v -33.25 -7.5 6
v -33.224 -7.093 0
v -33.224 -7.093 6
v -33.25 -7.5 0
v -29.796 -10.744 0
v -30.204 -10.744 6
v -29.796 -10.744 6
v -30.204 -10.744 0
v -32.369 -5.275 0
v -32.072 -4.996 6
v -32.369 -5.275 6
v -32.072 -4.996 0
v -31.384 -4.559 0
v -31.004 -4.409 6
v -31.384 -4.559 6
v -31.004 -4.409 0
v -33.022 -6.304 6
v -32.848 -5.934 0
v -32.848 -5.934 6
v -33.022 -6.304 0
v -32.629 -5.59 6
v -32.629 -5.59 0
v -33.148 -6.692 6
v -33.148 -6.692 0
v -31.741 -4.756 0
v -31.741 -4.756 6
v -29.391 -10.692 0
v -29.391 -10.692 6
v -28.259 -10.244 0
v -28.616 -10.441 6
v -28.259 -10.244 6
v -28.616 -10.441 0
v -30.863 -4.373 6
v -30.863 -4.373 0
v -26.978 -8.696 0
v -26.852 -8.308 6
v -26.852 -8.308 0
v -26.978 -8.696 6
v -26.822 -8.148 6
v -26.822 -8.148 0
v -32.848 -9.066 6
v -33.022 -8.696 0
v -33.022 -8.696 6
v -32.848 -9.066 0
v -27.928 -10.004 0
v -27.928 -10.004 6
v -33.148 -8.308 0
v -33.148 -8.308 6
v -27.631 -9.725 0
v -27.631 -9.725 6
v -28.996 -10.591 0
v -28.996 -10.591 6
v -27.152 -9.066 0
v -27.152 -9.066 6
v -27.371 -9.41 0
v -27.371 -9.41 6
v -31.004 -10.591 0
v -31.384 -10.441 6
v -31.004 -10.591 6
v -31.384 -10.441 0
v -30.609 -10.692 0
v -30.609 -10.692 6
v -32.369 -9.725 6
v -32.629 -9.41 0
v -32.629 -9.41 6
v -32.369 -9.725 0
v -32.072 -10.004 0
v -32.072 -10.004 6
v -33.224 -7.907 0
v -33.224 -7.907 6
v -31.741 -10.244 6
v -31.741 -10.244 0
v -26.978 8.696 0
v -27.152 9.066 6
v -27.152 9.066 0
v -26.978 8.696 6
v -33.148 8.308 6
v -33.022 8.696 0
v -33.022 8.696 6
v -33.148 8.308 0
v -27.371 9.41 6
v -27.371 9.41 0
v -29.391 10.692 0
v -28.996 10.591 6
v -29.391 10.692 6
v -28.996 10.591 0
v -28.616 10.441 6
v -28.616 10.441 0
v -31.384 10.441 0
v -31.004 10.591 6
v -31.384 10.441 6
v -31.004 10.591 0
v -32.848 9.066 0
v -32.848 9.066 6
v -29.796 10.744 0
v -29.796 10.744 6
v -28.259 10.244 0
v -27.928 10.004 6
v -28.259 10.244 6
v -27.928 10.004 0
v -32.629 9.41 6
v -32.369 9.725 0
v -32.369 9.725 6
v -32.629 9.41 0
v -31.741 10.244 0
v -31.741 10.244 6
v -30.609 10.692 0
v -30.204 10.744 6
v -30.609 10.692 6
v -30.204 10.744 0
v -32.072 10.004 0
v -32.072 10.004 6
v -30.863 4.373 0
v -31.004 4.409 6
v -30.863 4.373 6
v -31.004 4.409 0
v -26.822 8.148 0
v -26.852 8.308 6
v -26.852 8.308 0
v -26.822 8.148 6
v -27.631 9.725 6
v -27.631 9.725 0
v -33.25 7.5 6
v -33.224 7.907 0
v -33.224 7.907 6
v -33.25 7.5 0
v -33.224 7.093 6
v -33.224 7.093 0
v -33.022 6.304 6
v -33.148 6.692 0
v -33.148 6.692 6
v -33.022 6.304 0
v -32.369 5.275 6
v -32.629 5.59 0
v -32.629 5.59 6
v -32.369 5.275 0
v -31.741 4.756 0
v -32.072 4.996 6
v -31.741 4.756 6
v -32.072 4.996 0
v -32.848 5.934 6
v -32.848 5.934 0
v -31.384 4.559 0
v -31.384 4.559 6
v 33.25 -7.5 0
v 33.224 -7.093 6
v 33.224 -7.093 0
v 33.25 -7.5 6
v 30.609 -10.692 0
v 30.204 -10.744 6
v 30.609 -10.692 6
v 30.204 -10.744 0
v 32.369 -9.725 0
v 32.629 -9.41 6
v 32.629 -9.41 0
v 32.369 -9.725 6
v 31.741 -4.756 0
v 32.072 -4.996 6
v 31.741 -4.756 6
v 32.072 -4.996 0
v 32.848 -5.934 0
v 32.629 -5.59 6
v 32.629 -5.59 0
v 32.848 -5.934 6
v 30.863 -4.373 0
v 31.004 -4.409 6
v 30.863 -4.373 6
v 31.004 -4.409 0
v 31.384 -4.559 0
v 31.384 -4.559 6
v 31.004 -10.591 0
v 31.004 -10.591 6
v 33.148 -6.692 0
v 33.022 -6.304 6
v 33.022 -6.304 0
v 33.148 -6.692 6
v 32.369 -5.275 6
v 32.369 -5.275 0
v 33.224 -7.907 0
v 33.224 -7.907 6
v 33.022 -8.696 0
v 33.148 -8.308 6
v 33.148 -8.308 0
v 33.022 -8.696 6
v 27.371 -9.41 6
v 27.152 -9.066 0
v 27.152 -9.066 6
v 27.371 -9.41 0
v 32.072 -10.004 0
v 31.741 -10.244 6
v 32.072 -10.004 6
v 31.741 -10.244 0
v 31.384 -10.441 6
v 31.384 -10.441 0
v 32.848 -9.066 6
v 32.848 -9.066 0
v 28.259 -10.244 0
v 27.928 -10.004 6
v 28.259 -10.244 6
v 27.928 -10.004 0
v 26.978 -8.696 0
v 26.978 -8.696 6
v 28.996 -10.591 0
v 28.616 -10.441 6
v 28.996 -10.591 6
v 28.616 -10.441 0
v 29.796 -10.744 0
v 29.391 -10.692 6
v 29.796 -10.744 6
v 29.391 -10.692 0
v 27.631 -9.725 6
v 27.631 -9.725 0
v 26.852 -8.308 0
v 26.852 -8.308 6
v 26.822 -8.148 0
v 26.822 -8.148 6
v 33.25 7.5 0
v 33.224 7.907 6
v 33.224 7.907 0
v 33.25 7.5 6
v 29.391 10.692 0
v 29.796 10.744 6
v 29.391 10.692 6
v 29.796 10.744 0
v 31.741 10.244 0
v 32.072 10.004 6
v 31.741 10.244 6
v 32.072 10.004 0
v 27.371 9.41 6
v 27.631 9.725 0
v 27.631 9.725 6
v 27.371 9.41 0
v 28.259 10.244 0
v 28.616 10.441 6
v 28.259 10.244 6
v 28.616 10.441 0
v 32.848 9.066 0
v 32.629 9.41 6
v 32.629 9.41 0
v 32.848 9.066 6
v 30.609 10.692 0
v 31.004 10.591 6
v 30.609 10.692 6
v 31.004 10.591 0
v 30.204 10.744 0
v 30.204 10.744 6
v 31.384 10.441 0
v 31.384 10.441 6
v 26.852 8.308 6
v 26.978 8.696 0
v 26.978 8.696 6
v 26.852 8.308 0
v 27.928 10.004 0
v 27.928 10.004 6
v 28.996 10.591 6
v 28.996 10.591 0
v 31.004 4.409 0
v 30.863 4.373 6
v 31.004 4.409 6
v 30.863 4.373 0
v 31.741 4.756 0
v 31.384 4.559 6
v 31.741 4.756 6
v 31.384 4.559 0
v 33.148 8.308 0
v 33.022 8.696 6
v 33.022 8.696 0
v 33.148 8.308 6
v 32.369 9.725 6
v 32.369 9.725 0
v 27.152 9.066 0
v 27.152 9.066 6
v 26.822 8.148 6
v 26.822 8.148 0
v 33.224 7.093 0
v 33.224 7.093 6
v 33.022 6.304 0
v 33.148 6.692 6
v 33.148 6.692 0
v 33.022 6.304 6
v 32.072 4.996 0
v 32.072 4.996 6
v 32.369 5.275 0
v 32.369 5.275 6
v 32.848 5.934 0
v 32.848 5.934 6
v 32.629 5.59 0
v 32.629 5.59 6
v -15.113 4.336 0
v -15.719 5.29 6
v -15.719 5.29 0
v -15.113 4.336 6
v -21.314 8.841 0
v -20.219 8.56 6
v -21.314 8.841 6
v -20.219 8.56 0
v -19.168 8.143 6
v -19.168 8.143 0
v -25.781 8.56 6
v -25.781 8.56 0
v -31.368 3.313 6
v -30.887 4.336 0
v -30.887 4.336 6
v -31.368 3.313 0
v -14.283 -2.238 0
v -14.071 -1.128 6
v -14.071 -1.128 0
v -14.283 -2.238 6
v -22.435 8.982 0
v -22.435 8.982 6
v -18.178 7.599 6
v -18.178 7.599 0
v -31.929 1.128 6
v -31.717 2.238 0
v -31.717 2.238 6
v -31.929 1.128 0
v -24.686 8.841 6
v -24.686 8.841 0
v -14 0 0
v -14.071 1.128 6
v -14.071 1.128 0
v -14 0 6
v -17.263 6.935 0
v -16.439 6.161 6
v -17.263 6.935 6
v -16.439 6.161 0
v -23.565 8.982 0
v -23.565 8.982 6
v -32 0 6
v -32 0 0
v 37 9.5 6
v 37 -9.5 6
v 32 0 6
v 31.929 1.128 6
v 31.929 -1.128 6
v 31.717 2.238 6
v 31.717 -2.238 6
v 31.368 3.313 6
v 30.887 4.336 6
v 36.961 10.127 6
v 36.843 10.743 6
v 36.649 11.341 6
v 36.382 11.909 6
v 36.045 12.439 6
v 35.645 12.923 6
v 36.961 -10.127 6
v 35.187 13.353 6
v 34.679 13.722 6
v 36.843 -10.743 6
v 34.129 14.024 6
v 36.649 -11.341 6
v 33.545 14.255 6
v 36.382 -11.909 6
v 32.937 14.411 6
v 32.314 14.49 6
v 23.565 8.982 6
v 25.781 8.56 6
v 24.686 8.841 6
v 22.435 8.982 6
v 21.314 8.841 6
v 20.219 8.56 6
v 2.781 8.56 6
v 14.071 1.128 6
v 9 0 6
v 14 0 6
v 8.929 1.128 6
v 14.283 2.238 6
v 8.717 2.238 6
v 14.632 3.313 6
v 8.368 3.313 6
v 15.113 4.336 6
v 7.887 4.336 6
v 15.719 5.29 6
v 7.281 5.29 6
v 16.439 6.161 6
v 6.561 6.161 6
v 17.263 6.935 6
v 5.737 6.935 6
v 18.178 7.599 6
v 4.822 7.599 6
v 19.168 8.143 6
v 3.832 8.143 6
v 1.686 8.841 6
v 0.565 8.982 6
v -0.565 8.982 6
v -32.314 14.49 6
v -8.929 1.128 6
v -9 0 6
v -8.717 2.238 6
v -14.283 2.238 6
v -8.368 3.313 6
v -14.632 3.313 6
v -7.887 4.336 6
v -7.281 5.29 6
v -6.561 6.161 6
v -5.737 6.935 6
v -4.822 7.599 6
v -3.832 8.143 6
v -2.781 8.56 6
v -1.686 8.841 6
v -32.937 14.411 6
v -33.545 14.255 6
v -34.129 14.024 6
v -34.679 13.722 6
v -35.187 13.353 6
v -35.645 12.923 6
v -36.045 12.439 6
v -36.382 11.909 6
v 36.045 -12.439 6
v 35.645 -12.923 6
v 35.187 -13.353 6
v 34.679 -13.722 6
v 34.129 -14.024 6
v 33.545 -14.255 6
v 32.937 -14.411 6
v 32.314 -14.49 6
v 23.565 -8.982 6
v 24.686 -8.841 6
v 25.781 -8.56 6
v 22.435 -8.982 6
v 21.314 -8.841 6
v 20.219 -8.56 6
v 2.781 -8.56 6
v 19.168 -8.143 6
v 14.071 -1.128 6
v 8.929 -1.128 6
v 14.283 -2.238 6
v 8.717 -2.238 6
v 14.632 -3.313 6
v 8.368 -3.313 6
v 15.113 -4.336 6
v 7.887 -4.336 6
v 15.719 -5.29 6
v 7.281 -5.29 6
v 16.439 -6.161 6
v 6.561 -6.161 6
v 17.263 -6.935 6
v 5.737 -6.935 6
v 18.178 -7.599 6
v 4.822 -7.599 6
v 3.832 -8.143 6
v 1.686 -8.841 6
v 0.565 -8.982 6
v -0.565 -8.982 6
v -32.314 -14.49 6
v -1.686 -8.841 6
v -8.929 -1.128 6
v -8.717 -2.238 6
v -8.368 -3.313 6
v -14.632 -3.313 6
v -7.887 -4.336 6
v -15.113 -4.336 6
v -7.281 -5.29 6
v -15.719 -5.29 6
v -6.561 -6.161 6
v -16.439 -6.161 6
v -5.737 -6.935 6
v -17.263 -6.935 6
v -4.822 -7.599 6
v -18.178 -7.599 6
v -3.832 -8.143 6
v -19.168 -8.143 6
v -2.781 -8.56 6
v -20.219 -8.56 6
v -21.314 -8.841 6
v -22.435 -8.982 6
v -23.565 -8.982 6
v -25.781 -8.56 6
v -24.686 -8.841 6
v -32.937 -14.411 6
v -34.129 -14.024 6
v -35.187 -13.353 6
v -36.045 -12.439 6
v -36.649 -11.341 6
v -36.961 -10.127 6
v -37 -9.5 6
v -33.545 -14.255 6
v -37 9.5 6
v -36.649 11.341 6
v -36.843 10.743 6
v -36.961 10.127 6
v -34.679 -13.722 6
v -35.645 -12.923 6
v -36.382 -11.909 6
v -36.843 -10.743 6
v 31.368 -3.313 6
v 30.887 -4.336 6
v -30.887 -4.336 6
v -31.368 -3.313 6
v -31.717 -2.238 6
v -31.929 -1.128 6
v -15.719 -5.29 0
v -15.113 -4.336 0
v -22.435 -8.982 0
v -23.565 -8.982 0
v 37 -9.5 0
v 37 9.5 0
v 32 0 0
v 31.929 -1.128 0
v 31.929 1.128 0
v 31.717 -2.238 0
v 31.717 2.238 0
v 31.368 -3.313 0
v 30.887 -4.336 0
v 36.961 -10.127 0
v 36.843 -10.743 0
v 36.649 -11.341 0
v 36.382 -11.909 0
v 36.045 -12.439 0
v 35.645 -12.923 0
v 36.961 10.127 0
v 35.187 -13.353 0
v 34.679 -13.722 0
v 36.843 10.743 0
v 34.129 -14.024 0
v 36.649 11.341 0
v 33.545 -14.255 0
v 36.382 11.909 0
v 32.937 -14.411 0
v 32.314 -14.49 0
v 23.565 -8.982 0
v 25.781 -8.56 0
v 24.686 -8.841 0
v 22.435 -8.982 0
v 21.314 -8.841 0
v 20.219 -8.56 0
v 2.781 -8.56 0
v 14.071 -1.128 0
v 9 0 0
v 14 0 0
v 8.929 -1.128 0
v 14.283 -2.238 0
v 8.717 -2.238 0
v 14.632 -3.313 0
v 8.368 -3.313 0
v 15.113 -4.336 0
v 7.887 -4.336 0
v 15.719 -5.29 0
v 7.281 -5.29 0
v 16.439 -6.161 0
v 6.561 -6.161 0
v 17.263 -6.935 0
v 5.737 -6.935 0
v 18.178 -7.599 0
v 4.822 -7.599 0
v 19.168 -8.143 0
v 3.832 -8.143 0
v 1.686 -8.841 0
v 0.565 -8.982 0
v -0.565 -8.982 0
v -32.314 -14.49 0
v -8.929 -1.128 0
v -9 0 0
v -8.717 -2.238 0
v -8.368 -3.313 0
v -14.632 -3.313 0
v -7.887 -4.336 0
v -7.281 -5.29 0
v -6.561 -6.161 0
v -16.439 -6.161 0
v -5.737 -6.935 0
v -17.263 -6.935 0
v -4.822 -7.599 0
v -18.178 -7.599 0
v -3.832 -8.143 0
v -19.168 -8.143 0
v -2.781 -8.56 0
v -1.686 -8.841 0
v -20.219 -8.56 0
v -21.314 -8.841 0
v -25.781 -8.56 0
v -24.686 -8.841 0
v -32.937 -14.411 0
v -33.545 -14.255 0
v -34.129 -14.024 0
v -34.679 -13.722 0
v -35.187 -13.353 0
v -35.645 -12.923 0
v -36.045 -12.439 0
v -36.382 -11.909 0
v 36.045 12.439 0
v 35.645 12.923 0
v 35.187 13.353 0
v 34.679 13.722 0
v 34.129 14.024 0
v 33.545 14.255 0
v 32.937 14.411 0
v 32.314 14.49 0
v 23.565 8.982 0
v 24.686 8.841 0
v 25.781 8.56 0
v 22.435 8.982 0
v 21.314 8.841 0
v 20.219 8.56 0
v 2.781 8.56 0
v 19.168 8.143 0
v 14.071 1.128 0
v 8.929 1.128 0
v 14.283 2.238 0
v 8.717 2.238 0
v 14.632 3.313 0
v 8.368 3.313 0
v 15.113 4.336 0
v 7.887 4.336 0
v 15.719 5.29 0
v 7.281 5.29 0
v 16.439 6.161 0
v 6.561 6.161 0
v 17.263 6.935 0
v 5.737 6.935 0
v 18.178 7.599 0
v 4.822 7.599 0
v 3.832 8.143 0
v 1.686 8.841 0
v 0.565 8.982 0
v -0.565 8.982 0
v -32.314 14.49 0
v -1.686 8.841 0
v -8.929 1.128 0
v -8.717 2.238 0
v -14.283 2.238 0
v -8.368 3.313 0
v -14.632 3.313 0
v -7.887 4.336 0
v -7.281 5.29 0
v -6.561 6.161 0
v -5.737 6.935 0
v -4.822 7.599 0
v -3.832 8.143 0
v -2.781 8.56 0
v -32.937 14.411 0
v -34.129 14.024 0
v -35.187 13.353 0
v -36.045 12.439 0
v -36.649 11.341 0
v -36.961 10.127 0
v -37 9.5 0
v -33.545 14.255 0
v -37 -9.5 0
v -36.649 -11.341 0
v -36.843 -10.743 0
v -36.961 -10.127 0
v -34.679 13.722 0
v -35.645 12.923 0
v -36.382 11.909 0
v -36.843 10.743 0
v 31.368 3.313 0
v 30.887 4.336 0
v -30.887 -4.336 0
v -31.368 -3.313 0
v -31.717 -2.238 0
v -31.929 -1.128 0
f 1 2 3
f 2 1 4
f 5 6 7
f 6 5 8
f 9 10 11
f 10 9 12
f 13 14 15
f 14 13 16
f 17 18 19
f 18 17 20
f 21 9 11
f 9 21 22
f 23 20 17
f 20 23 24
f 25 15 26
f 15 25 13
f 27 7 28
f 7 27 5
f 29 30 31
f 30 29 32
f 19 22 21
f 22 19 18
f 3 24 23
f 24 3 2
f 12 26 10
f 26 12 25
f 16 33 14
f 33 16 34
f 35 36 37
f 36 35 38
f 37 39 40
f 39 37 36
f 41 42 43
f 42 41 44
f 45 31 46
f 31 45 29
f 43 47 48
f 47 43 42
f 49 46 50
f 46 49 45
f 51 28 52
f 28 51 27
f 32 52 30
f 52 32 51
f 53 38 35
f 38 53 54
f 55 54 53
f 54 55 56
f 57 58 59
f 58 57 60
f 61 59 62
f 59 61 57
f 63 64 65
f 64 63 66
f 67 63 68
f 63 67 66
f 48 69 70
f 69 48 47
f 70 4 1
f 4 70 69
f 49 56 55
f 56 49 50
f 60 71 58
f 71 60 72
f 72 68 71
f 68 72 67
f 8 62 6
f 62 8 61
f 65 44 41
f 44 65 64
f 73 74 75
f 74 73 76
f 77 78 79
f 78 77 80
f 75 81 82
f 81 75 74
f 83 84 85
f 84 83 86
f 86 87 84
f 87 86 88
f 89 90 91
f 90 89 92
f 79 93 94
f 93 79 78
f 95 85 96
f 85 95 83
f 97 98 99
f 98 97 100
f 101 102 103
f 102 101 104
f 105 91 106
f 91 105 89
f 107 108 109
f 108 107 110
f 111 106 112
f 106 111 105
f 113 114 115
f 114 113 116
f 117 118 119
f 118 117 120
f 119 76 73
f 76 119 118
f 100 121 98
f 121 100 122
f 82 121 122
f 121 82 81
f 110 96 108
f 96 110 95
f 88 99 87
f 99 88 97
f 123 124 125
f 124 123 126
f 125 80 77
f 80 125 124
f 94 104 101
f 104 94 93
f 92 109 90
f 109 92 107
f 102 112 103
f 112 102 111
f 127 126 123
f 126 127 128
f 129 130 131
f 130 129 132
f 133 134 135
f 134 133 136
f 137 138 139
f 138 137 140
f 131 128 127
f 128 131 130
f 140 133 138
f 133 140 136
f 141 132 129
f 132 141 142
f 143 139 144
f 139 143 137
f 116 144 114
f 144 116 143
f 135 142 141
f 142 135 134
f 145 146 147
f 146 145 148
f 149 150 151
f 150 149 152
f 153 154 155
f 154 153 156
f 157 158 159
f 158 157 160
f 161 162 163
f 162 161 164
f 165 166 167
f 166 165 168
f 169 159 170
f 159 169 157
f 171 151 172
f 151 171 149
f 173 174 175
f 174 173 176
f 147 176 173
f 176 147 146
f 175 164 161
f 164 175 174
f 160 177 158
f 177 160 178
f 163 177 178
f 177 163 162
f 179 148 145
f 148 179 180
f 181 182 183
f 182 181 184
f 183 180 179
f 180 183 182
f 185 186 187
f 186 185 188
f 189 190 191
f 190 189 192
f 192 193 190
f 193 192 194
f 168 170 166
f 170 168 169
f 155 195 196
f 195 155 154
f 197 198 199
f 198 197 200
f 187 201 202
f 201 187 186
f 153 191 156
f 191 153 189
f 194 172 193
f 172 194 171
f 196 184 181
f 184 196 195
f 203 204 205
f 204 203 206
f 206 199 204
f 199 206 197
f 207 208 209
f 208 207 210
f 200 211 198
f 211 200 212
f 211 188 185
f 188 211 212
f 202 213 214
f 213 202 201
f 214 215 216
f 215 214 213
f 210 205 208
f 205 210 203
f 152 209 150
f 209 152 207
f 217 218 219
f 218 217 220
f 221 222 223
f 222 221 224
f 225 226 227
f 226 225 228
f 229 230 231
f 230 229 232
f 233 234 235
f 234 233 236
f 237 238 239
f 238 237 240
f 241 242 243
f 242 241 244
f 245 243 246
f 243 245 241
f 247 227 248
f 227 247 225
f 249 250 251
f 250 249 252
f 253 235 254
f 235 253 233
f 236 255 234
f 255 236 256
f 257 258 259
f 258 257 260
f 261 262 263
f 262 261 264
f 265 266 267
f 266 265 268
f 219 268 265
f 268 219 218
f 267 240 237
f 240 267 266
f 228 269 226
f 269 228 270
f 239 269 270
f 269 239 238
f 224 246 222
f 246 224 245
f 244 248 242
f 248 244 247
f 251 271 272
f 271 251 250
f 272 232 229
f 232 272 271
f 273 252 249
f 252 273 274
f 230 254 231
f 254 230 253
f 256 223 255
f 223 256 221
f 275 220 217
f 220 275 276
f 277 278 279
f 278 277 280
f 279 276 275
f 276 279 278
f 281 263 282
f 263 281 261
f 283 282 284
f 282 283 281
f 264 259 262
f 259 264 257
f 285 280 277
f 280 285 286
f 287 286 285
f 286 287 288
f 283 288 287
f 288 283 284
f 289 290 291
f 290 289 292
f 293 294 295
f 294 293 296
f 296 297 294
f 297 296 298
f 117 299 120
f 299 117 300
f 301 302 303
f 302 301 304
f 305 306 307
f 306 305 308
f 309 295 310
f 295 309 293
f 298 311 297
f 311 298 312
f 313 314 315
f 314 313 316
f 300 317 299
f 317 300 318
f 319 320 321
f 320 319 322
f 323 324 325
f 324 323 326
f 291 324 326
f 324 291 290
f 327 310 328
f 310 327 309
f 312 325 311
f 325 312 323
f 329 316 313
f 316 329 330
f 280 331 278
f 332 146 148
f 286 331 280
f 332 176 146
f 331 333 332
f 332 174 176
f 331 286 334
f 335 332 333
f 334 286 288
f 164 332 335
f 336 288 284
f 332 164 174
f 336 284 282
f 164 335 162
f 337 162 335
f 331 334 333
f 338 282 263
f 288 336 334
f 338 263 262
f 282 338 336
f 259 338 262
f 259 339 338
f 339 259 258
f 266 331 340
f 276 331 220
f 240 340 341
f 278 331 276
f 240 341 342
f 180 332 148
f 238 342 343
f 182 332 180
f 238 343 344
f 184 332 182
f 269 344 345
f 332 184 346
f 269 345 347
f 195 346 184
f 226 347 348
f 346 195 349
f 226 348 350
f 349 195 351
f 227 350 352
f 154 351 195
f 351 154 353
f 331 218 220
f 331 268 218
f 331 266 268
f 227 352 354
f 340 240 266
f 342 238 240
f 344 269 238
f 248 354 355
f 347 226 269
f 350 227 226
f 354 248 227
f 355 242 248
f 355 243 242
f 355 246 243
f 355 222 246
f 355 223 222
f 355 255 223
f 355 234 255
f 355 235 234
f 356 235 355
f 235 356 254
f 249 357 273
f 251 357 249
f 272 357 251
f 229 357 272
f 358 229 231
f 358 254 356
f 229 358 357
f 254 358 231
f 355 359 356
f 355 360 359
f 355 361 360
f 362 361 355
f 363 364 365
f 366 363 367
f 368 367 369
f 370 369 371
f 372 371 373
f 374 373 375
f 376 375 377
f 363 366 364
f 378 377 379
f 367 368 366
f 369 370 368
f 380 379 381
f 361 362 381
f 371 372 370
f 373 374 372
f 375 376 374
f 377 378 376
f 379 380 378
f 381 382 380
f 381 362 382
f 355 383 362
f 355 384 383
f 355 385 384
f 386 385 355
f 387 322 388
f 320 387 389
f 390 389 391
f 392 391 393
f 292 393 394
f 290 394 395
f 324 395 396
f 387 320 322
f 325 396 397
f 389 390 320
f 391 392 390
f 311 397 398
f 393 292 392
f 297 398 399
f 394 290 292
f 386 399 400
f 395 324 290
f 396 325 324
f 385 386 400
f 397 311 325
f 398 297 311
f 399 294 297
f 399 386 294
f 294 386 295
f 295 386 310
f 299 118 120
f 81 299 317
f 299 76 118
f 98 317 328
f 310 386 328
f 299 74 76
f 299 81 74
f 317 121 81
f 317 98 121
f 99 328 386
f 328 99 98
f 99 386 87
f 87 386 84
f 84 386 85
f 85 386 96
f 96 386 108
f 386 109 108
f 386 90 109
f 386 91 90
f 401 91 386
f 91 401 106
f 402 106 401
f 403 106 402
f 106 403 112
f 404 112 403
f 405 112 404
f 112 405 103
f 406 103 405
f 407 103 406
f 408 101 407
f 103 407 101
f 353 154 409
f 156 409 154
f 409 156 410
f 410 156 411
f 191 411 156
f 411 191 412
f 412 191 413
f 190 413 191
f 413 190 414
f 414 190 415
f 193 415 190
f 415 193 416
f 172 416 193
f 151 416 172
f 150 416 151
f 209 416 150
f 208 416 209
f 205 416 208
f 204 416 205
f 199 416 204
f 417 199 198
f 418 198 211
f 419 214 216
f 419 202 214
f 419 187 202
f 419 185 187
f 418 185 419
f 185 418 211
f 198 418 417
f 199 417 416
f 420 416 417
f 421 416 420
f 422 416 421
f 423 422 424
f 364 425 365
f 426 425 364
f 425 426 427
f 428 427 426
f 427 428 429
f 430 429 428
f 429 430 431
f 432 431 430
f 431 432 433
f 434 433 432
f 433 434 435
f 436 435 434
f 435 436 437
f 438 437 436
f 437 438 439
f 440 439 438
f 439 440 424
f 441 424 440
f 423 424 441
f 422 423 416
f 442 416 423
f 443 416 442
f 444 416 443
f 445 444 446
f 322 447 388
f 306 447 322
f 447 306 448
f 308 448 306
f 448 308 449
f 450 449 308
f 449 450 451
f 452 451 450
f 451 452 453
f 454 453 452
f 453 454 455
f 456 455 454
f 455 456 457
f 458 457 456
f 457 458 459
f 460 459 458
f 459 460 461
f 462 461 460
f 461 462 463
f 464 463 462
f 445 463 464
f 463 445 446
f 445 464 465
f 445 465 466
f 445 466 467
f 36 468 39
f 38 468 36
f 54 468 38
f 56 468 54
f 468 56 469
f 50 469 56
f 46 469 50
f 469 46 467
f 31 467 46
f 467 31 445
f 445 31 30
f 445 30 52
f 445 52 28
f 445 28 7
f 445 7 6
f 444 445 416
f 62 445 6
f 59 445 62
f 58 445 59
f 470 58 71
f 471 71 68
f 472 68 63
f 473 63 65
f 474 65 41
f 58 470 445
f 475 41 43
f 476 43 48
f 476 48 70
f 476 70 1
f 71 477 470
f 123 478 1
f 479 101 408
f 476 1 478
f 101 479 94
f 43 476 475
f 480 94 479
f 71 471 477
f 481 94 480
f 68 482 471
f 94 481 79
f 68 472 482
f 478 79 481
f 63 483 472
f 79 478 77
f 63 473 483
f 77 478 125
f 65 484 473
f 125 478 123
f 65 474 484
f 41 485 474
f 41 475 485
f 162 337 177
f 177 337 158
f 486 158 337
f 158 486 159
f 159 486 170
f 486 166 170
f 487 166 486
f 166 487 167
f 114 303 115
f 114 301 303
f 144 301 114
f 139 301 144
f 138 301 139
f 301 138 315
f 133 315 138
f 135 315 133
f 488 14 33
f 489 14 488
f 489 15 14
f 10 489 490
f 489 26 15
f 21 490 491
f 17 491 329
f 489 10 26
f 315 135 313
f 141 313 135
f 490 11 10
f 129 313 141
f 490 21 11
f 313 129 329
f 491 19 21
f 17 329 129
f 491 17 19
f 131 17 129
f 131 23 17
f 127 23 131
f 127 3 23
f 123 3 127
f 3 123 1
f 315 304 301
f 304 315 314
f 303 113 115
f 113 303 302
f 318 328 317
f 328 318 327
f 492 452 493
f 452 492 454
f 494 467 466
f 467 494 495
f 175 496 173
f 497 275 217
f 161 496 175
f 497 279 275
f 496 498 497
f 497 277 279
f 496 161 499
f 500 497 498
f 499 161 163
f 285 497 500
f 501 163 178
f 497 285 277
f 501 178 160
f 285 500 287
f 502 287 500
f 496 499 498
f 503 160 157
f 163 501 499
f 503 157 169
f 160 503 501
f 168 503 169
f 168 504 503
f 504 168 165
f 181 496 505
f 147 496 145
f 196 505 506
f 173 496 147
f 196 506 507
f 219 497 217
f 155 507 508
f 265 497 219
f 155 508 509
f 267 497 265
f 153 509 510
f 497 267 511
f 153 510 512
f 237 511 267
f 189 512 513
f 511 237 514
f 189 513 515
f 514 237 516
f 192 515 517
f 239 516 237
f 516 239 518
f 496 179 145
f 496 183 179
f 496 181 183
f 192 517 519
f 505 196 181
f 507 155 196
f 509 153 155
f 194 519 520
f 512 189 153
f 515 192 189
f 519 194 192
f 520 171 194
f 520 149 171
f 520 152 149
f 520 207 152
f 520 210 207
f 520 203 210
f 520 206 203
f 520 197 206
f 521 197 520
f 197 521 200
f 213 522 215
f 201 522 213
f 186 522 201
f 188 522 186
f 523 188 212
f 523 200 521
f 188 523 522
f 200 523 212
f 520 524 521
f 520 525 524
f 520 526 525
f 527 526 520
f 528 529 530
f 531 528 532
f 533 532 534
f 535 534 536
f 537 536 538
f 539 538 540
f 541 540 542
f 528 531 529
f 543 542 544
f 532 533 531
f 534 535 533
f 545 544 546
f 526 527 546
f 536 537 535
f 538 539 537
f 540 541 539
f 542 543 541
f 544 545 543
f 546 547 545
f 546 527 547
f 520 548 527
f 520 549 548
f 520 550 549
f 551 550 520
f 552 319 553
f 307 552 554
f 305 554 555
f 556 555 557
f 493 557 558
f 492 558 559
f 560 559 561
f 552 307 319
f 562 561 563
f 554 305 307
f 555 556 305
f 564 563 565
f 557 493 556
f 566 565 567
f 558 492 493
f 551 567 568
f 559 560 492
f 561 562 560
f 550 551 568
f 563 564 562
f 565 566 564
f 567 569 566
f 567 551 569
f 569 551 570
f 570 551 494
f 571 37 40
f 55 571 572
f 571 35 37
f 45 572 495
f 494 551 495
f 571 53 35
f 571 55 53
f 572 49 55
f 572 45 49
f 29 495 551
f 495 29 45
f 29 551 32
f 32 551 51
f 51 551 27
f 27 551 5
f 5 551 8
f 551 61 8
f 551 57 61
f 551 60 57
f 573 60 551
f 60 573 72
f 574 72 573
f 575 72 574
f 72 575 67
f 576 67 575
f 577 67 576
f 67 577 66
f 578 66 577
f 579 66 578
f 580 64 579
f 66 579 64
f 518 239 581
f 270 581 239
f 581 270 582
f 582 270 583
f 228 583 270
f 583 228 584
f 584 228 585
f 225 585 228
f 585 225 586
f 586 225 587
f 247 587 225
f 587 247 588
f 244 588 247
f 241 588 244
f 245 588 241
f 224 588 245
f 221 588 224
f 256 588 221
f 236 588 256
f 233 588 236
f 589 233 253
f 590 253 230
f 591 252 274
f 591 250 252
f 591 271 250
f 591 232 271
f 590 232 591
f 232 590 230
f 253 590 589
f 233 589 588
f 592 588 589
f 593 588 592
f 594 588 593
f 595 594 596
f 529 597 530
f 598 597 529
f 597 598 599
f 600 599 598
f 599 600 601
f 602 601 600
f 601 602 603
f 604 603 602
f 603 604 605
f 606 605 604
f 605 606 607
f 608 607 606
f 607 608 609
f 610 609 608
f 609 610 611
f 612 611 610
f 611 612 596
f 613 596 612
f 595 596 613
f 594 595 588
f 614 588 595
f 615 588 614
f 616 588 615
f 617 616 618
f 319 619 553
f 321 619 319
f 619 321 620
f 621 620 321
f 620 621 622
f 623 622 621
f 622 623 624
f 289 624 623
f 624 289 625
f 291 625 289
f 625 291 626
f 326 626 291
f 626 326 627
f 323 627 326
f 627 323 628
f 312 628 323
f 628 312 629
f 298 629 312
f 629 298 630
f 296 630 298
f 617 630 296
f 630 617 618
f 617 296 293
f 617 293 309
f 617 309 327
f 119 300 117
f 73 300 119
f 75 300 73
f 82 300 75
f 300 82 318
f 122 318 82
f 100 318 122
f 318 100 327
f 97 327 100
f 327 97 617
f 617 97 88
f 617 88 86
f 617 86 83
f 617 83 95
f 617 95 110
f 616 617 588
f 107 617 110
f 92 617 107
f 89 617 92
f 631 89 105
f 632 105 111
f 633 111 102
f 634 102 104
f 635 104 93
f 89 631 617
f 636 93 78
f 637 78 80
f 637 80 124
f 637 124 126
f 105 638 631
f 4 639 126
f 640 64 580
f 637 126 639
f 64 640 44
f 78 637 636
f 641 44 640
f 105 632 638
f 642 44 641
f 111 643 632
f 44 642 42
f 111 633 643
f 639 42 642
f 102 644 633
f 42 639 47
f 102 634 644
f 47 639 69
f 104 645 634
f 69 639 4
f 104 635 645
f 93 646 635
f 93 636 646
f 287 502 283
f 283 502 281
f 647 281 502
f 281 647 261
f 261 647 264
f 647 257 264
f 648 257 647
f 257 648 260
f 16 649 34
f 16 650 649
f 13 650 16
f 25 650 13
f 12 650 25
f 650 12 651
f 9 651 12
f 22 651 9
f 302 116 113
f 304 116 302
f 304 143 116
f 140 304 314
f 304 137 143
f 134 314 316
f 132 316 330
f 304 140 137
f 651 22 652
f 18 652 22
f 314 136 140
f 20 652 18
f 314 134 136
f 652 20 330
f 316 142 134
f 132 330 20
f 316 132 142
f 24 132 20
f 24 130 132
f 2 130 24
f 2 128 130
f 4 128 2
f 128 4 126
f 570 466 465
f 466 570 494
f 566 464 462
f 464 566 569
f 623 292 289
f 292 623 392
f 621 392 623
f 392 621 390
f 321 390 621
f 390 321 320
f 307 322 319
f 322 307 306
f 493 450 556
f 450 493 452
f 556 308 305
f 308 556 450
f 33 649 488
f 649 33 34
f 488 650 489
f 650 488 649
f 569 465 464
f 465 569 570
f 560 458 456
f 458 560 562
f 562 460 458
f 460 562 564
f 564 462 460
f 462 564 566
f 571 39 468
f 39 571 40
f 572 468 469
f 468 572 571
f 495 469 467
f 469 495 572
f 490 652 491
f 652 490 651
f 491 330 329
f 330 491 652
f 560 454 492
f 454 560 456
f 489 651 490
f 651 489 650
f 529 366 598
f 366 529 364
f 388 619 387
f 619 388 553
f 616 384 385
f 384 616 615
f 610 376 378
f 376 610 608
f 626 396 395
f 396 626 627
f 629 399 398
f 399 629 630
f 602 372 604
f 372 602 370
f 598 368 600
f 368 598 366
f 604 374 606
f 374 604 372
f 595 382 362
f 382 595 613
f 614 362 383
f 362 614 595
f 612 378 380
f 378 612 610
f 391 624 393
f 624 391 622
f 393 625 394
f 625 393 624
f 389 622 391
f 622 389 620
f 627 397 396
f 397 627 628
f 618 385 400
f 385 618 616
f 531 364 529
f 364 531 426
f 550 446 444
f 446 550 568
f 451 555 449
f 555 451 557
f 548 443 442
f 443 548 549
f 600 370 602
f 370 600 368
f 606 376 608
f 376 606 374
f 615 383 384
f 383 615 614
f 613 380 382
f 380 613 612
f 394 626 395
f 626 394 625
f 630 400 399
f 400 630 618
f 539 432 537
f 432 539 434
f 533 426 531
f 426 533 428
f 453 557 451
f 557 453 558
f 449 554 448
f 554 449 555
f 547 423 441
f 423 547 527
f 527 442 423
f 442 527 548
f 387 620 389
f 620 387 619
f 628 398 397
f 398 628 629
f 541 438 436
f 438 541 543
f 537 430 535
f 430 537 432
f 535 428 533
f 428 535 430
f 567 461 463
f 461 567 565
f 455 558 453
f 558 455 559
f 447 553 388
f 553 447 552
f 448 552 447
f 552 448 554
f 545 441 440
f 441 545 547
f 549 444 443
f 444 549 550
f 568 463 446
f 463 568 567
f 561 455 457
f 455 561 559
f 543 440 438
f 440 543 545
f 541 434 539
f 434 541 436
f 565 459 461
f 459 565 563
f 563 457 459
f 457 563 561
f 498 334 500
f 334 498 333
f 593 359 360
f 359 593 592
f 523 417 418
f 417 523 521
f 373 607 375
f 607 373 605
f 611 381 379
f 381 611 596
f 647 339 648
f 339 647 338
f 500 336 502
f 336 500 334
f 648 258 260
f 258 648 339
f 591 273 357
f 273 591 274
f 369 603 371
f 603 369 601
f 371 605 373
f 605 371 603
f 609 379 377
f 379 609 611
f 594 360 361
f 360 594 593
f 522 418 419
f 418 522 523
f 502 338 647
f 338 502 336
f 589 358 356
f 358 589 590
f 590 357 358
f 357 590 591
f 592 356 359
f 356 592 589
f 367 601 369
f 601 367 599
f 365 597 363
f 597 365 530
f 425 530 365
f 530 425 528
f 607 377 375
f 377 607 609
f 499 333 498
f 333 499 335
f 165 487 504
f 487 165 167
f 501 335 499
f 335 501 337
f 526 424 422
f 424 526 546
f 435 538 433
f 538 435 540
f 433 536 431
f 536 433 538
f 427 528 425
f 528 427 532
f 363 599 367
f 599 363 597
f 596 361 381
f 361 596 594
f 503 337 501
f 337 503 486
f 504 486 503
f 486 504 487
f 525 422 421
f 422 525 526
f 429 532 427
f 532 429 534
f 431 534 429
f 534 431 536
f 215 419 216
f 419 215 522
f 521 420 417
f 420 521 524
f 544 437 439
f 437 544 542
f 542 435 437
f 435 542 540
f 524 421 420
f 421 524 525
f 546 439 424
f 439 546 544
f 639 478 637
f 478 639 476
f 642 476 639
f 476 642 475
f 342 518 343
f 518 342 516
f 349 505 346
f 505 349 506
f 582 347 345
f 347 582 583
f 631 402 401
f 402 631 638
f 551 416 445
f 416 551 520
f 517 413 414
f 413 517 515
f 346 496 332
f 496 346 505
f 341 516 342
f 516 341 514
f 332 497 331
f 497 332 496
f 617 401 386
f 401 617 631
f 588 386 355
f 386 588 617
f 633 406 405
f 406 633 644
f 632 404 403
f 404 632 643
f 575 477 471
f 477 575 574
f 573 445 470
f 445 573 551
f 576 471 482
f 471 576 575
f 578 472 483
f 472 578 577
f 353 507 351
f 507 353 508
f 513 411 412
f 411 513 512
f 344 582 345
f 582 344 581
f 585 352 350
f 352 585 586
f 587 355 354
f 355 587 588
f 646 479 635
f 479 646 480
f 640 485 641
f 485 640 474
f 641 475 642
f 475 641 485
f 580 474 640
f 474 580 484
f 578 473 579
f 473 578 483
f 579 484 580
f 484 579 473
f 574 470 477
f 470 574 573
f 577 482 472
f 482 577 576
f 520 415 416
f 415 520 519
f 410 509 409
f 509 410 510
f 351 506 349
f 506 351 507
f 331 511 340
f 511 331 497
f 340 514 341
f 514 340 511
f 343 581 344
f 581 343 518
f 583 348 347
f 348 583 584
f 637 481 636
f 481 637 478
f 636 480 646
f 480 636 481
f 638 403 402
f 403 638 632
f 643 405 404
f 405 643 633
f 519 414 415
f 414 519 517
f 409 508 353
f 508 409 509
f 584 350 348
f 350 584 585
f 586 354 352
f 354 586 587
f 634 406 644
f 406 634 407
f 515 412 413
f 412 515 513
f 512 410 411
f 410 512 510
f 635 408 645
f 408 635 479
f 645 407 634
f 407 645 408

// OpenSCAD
$fn = 50;


difference() {
	union() {
		hull() {
			translate(v = [-32.0000000000, 9.5000000000, 0]) {
				cylinder(h = 6, r = 5);
			}
			translate(v = [32.0000000000, 9.5000000000, 0]) {
				cylinder(h = 6, r = 5);
			}
			translate(v = [-32.0000000000, -9.5000000000, 0]) {
				cylinder(h = 6, r = 5);
			}
			translate(v = [32.0000000000, -9.5000000000, 0]) {
				cylinder(h = 6, r = 5);
			}
		}
	}
	union() {
		#translate(v = [-30.0000000000, -7.5000000000, -100.0000000000]) {
			cylinder(h = 200, r = 3.2500000000);
		}
		#translate(v = [-30.0000000000, 7.5000000000, -100.0000000000]) {
			cylinder(h = 200, r = 3.2500000000);
		}
		#translate(v = [30.0000000000, -7.5000000000, -100.0000000000]) {
			cylinder(h = 200, r = 3.2500000000);
		}
		#translate(v = [30.0000000000, 7.5000000000, -100.0000000000]) {
			cylinder(h = 200, r = 3.2500000000);
		}
		#translate(v = [-23.0000000000, 0, 0]) {
			cylinder(h = 6, r = 9.0000000000);
		}
		#cylinder(h = 6, r = 9.0000000000);
		#translate(v = [23.0000000000, 0, 0]) {
			cylinder(h = 6, r = 9.0000000000);
		}
	}
}
